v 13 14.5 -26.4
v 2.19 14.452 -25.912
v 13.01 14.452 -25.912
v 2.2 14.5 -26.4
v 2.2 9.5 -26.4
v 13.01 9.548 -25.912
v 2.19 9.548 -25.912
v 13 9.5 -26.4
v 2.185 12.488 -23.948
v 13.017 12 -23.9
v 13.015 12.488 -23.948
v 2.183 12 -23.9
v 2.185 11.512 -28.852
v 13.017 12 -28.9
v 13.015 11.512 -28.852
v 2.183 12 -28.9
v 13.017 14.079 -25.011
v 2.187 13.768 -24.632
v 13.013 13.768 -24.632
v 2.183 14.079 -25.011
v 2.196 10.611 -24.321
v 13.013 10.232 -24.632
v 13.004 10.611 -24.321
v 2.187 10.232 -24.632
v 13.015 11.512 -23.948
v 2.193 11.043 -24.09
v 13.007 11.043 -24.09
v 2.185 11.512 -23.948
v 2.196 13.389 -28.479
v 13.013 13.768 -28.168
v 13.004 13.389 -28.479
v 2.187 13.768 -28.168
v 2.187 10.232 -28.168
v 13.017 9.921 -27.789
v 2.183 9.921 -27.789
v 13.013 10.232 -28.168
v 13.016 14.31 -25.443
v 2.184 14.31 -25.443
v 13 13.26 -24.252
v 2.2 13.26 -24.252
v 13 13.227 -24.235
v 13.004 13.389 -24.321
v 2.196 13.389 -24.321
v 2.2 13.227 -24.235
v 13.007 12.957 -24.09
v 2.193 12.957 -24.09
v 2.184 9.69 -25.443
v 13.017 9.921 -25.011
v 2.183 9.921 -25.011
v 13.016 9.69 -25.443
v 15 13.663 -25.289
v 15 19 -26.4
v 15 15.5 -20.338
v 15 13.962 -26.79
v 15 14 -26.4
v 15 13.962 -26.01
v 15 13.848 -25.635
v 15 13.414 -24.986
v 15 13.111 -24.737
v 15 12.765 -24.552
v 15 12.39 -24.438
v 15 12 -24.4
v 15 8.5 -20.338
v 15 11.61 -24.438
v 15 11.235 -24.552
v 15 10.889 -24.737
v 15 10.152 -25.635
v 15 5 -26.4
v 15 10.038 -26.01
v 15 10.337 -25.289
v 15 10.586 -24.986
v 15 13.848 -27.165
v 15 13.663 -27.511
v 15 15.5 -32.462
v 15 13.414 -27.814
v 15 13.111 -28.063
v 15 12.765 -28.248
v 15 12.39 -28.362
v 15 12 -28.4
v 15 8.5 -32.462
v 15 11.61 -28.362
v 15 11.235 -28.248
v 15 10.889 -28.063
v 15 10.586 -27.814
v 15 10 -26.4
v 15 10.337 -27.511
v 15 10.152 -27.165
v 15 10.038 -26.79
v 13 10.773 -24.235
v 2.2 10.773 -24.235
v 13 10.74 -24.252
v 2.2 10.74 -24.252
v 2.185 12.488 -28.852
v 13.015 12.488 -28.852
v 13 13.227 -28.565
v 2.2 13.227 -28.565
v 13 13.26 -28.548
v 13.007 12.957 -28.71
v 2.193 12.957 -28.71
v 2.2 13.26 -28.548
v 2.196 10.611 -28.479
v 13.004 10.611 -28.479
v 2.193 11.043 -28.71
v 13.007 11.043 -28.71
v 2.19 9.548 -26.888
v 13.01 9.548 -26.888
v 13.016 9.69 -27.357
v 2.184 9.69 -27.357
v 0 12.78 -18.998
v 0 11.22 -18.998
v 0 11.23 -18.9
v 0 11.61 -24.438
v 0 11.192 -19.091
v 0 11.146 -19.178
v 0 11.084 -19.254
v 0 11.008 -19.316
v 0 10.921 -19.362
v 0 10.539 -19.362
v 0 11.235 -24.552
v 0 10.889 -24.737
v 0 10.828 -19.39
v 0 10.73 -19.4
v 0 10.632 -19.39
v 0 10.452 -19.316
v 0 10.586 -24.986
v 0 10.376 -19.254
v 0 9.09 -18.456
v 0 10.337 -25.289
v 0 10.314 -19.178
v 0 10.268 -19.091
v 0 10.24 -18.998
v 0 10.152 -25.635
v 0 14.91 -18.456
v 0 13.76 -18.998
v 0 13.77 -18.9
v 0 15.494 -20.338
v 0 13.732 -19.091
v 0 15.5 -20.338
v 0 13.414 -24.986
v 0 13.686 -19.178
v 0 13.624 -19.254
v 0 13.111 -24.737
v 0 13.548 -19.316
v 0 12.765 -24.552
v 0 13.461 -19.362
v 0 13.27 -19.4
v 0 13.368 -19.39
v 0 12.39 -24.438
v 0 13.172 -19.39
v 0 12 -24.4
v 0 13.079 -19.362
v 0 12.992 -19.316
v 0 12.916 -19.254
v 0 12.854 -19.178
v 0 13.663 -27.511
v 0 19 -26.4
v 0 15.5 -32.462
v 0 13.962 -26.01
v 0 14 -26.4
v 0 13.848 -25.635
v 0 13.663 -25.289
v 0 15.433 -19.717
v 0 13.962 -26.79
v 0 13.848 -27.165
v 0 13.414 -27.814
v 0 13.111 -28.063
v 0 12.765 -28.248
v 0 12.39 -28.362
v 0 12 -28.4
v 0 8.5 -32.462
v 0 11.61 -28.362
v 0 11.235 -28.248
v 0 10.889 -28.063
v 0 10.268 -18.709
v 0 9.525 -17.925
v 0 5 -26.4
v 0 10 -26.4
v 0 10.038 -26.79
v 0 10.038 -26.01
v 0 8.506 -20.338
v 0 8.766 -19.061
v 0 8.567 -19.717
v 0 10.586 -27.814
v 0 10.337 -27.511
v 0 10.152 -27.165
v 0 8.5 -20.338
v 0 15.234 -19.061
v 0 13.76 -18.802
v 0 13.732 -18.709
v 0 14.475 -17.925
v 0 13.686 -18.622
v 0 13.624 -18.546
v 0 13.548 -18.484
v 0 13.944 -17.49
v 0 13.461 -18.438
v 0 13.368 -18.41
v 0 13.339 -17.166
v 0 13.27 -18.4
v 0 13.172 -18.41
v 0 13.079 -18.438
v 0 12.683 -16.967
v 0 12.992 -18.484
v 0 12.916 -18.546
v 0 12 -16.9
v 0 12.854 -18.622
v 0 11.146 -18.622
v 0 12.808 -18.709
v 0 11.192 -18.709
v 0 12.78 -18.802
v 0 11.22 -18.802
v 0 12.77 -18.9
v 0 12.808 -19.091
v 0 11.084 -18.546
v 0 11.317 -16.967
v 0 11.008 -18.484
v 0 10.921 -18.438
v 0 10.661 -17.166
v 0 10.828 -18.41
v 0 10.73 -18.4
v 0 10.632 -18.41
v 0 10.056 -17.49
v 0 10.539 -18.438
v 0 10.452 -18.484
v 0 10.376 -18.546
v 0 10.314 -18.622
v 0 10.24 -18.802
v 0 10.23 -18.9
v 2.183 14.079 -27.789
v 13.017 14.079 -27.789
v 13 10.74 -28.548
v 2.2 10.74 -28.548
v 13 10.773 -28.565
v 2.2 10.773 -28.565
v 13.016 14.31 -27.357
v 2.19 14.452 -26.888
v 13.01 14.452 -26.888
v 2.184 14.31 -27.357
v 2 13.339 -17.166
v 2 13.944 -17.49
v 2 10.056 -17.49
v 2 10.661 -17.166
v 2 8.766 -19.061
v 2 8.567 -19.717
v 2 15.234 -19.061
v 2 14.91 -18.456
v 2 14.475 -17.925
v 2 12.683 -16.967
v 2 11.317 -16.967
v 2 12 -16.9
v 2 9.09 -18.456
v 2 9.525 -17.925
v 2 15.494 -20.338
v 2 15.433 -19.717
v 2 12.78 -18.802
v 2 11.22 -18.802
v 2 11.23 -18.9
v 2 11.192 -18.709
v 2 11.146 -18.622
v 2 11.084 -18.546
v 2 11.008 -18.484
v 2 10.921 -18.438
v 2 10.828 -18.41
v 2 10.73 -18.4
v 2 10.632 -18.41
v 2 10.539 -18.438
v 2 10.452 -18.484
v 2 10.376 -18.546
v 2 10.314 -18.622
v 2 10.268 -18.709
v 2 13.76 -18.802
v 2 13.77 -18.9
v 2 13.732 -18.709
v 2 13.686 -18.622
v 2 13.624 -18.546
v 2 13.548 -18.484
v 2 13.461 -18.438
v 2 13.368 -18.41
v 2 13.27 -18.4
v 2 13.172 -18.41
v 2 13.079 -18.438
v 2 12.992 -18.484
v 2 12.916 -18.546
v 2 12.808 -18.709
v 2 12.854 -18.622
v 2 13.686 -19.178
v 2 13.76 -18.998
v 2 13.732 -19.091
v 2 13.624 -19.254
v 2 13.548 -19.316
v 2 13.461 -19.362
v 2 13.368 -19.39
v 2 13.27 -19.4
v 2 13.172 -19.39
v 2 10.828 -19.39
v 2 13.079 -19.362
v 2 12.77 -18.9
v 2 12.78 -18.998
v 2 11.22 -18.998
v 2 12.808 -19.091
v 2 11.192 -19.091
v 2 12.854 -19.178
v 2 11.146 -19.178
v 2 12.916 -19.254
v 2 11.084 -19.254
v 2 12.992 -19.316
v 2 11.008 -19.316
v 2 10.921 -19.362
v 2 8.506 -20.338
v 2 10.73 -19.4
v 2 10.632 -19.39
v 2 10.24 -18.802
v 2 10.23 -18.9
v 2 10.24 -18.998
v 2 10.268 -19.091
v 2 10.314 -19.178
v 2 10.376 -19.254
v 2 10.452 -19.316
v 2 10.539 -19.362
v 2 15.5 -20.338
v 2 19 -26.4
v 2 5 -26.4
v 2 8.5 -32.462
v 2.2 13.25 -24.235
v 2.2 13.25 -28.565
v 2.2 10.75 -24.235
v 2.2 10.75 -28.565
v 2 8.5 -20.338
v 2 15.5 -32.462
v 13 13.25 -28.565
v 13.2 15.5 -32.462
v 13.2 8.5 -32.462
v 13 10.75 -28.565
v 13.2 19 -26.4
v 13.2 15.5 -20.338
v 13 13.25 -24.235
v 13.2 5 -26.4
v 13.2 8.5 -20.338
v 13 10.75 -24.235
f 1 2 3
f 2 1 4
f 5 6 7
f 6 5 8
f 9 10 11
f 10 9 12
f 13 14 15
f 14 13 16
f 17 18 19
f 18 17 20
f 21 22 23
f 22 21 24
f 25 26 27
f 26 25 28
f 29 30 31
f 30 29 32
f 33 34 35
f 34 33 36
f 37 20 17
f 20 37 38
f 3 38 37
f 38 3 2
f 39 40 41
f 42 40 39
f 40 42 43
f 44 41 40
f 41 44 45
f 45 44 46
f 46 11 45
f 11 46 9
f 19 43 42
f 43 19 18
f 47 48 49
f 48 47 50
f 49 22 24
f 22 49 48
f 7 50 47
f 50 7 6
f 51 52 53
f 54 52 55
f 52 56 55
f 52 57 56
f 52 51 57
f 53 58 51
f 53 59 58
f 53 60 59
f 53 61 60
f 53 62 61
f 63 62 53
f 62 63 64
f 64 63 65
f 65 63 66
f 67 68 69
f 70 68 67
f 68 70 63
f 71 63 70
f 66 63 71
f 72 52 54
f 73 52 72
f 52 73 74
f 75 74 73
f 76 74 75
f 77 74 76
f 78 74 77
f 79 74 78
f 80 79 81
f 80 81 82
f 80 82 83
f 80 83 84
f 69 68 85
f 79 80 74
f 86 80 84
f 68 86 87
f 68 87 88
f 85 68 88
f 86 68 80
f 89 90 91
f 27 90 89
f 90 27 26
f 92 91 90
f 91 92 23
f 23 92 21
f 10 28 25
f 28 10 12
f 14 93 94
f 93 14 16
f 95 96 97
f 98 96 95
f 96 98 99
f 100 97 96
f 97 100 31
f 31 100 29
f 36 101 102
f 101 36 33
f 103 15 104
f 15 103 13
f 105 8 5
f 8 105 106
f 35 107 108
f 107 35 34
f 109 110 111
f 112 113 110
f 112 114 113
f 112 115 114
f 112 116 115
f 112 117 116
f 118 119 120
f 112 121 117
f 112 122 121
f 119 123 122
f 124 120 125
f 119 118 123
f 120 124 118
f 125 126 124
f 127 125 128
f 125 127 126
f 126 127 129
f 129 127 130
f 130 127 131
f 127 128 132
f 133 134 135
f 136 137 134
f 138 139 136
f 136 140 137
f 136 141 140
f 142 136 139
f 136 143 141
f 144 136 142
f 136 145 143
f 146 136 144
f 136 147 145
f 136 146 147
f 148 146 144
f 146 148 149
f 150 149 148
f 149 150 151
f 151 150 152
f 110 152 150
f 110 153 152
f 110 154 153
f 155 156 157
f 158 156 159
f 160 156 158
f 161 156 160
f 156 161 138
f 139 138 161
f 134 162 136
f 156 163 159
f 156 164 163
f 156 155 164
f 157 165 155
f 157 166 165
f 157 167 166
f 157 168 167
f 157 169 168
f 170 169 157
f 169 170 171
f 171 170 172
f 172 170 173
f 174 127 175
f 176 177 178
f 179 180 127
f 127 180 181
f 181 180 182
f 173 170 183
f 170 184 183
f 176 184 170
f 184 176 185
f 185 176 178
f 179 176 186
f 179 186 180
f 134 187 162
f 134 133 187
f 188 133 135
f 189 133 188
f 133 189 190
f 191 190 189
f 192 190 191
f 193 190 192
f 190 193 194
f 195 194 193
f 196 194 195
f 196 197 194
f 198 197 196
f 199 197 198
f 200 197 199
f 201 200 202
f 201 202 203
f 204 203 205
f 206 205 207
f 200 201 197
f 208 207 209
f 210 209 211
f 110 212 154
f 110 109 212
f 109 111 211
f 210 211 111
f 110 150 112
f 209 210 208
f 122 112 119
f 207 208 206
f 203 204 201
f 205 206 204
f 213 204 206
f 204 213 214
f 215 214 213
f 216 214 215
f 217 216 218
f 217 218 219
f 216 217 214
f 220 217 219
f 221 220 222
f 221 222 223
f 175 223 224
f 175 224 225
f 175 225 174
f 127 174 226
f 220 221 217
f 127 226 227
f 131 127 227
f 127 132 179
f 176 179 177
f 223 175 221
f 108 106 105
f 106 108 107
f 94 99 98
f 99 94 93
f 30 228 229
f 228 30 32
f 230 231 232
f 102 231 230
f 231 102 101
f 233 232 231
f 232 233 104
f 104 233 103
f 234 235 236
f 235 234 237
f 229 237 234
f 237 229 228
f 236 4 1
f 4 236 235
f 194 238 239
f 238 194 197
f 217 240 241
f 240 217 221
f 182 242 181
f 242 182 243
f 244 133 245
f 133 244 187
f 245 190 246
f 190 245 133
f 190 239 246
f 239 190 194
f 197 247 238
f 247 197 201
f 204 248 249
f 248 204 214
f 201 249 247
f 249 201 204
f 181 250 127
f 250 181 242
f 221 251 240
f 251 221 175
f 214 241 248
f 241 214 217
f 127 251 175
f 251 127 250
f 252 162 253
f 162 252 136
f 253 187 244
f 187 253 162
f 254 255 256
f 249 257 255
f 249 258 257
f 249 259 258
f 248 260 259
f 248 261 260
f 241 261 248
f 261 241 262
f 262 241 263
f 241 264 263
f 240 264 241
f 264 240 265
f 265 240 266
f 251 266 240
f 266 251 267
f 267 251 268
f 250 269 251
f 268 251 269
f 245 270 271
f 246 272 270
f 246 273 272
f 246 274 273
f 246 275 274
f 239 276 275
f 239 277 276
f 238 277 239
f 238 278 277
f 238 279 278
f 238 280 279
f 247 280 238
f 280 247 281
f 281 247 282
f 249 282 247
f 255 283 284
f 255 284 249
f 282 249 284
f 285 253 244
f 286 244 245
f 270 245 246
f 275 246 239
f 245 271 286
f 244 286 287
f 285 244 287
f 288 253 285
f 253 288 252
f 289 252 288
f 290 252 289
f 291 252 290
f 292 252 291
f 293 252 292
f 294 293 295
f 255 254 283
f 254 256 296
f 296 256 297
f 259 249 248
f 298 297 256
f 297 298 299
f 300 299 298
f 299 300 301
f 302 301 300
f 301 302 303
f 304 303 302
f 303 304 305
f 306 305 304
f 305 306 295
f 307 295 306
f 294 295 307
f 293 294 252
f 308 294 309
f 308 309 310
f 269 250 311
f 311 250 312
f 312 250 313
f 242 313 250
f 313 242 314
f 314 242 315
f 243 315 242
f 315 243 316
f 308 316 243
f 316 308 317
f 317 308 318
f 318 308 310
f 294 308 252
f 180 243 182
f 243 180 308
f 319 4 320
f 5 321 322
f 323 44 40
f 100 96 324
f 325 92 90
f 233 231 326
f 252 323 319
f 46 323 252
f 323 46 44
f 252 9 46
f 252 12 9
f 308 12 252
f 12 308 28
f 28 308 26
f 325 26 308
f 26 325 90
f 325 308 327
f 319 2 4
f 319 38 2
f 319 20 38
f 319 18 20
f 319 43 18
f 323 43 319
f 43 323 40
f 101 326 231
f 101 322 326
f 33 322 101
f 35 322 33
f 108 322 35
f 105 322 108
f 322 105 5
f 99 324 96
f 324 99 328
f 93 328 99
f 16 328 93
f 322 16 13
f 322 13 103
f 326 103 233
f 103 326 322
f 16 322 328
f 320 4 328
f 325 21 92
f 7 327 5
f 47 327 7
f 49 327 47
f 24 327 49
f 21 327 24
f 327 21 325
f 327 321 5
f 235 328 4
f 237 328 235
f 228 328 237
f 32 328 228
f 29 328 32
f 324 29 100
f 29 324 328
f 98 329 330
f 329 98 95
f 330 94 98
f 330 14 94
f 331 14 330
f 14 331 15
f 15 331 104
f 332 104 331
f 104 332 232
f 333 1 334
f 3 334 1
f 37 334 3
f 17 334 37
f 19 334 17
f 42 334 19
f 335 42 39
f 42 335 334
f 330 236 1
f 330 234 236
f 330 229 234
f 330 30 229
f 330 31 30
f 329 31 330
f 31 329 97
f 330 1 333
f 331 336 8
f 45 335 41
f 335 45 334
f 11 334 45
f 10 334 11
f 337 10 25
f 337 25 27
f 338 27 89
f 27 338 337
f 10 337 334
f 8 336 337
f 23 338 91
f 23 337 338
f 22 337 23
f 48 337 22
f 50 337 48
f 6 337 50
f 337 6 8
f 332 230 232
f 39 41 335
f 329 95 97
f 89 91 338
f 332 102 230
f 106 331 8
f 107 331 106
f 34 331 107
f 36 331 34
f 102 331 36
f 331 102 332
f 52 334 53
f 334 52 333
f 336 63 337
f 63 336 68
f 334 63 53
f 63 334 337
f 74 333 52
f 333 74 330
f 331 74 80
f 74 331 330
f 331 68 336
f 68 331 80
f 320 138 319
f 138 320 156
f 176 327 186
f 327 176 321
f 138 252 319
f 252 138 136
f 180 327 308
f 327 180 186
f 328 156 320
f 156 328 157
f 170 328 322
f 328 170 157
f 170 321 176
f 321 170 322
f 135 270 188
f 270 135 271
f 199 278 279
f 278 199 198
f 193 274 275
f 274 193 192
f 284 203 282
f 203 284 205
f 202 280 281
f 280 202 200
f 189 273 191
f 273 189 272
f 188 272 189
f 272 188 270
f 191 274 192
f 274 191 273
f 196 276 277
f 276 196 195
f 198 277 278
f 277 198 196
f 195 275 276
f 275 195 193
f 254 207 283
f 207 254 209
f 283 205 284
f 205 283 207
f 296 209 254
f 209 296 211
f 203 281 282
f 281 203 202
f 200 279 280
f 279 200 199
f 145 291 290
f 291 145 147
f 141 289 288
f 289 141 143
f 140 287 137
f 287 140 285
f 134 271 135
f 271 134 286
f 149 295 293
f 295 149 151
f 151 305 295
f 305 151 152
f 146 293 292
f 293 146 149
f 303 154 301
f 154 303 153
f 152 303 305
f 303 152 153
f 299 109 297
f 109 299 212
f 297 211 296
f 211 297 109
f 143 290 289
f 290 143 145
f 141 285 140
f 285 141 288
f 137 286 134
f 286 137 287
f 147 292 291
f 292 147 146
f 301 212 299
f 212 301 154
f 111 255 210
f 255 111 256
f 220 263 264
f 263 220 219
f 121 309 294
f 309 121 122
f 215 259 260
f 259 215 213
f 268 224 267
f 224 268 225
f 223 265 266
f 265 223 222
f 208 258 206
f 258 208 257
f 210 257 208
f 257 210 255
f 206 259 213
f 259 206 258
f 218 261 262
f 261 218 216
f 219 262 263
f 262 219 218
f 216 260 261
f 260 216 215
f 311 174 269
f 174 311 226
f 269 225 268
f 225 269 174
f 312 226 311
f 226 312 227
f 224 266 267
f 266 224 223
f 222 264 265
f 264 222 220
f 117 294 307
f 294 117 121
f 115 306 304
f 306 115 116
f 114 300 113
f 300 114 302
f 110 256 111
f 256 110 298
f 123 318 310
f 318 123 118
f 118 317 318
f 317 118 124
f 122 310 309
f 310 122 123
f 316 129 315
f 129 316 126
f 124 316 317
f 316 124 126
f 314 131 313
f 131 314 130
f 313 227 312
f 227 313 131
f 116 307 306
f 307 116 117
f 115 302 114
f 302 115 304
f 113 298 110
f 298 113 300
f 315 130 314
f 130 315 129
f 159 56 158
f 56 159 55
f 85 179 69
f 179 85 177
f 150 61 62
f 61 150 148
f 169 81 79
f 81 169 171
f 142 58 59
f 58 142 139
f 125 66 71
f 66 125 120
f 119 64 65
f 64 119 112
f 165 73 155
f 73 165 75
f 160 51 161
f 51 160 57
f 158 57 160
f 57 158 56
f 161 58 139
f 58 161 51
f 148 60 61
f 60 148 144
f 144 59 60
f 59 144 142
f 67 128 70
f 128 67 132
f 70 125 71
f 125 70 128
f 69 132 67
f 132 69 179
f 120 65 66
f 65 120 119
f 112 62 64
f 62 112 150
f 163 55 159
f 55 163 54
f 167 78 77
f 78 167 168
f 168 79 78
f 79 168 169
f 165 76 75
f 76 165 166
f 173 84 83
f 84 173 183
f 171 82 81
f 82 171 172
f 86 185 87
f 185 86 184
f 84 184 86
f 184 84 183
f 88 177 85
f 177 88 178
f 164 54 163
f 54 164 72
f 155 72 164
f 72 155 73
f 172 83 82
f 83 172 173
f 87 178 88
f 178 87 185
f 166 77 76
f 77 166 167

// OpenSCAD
// file: parameter.scad
//----------------Global Parameter---------------------------------------
nema17_height=40;
nema17_width=42;
nema17_shftDia=5;
nema17_shftLen=28;
nema17_holeDist=31;
Nema17_gearDia=23;

slotWthick=4;

//-------Parameter triplePytho------------------------------------------------

strScale=800;
strDia=3.5;
strPosX=20;
strPosY=-20;
slotXY=20;
nStr=3;


tuner_bDi=8;
tuner_bDo=22.2;
tuner_bZ=10;
tuner_rThick=5;
tuner_tDia=strPosX*2;// (big)
//tuner_tDia=tuner_bDo+8;// (small)
tuner_leverZ=10;
tuner_zPos=225;
tuner_strDia=strDia[0];
tuner_leverY=35;

//----------Kickup----------------------------------------------------

kickup_baseX=17;
kickup_baseY=13;
kickup_zAdjDia=3.3;
kickup_zAdjL=10;
kickup_zAdjDist=10.5;
kickup_zAdjOff=4;
//------------------------------------------------------------------------

slide_cpDst=1.5;
slide_rackPosX=(55-12.5);

m3Dia=3.3;
m3NutD=6.6;
m4Dia=4.3;
m4NutD=8.3;
m4NutZ=5;
m5Dia=5.3;
m5HeadD=9.6;

edgeR=3;

mnt_pcbA_X=157;
mnt_pcbA_Y=101;

//---------End Parameter triplePytho-----------------------------------------------


//-------Parameter GHarp----------------------------------------------------

//strScale=650;
//strDia=3;
//strPosX=20;
//strPosY=-20;
//slotXY=20;
//nStr=3;
//
//
//
//tuner_bDi=8;
//tuner_bDo=22.2;
//tuner_bZ=10;
//tuner_rThick=5;
////tuner_tDia=strPosX*2; (big)
//tuner_tDia=strPosX*2-10;
//tuner_leverZ=10;
//tuner_zPos=225;
//tuner_strDia=strDia[0];
//tuner_leverY=35;
//
////----------Kickup----------------------------------------------------
//
//kickup_baseX=17;
//kickup_baseY=13;
//kickup_zAdjDia=3.3;
//kickup_zAdjL=10;
//kickup_zAdjDist=10.5;
//kickup_zAdjOff=4;
////------------------------------------------------------------------------
//
//slide_cpDst=1.5;
//slide_rackPosX=(55-12.5);
//
//m3Dia=3.3;
//m3NutD=6.6;
//m4Dia=4.3;
//m4NutD=8.3;
//m4NutZ=5;
//m5Dia=5.3;
//m5HeadD=9.6;
//
//edgeR=3;
//
//gearXPos=57;
//gearYPos=0;
//gearZPos=360;
//
//rackScrD=20;
//rack_X=13;
//rack_Y=15.5;
//rack_extOffX=0;
//
//bearGearD=25;
//mntGrD=20.5; //mount gear distance
//
//mnt_pcbA_X=157;
//mnt_pcbA_Y=101;

//---------End Parameter GHarp-----------------------------------------------


//-------Parameter Bass----------------------------------------------------

//strScale=650;
//strDia=4;
//strPosX=20;
//strPosY=-20;
//slotXY=20;
//
//
//
//tuner_bDi=8;
//tuner_bDo=22.2;
//tuner_bZ=10;
//tuner_rThick=5;
////tuner_tDia=strPosX*2; (big)
//tuner_tDia=strPosX*2;
//tuner_leverZ=10;
//tuner_zPos=225;
//tuner_strDia=strDia[0];
//tuner_leverY=35;
//
////----------Kickup----------------------------------------------------
//
//
//kickup_baseX=22;
//kickup_baseY=15;
//kickup_zAdjDia=3.3;
//kickup_zAdjL=10;
//kickup_zAdjDist=13;
//kickup_zAdjOff=4;
//
//
//slide_cpDst=1.5;
//slide_rackPosX=(55-12.5);
//
//m3NutD=6.6;
//m4Dia=4.3;
//m4NutD=8.3;
//m5Dia=5.3;
//
//edgeR=3;
//
//gearXPos=57;
//gearYPos=0;
//gearZPos=360;
//
//rackScrD=20;
//rack_X=13;
//rack_Y=15.5;
//rack_extOffX=0;
//
//bearGearD=25;
//mntGrD=20.5; //mount gear distance
//
////---------End Bass-----------------------------------------------
// main file
include <parameter.scad>
strSpanB=10;
bodySlotX=100;

kickup(3);

module kickup(orient){
$fn=32;

spacing=strSpanB;//52;
echo (spacing);
diameter=15;
wall=2;
coilZ=15;
bottomZ=2;
t=0.3;
ySpacing=12;

bX = slotXY;
bY=12;
bZ=coilZ+bottomZ+t;

tX = bX;
tY=bY;
hub=3;
magZ=3.1;
tbottomZ=3;
tZ=hub+magZ+tbottomZ;
tDia=6.7;//6.5;
screwTdia=4.3;

conMntX=2.54;
conMntY=6.3;
conMntZ=12;
conWt=1.5;

screwMdia=4.3;

mntTh=4.5;
mX=bX+slotXY+mntTh;


module mnt(){
difference(){
    union(){
        translate([-mX/2+bX/2,0,-mntTh])rcube([mX,bY,mntTh],3);
        translate([-mX+bX/2+mntTh/2,0,-mntTh])rcube([mntTh,bY,bZ+mntTh+tZ],0.1);
    }
    hull(){
    translate([-bX/2-slotXY,0,slotXY/2])rotate([0,-90,0])cylinder(d=m5Dia,h=bZ,center=true);
    translate([-bX/2-slotXY,0,(bZ+tZ)-m5Dia*1.5])rotate([0,-90,0])cylinder(d=m5Dia,h=bZ,center=true);
    }
    
    
    translate([0,0,-mntTh-1])cylinder(d=screwMdia,h=bZ);
}
}


module rcube(size,radius){
linear_extrude(height=size[2])
if(radius>0){
hull()
{
    // place 4 circles in the corners, with the given radius
    translate([(-size[0]/2)+(radius), (-size[1]/2)+(radius), 0])
    circle(r=radius);

    translate([(size[0]/2)-(radius), (-size[1]/2)+(radius), 0])
    circle(r=radius);

    translate([(-size[0]/2)+(radius), (size[1]/2)-(radius), 0])
    circle(r=radius);

    translate([(size[0]/2)-(radius), (size[1]/2)-(radius), 0])
    circle(r=radius);
}
}
if(radius==0){
translate([0,0,size[2]/2])cube(size,center=true);
}
}




module coil(){
$fn=32;
magholedia=4;
wallthick=0.5;
loweridlerZ=2;
upperidlerZ=1.8;
rampBZ=0.2;
rampTZ=0.2;
coildia=14;
rampdia=coildia;
threaddepth=5;
roofZ=0; //loweridlerZ;
conD=2.54;
conMDia=7;
conR=coildia/2-1;

difference(){
union(){
cylinder(d=magholedia+wallthick*2,h=coilZ);
translate([0,conR,0])cylinder(d=conMDia,h=loweridlerZ);   
translate([0,0,loweridlerZ])cylinder(d1=rampdia,d2=magholedia+wallthick*2,h=rampBZ,$fn=6);
translate([0,0,coilZ-upperidlerZ-rampTZ])cylinder(d2=rampdia/100*100,d1=magholedia+wallthick*2,h=rampTZ,$fn=6);
translate([0,0,coilZ-upperidlerZ])cylinder(d=coildia/100*100,h=upperidlerZ,,$fn=6);
//Ccube([coildia,coildia,upperidlerZ],[0,0,1]);
translate([0,0,0]){
//Ccube([coildia,coildia,loweridlerZ],[0,0,1]);
cylinder(d=coildia,h=loweridlerZ,$fn=6);

}
}

translate([conD/2,conR+1.5,0])cylinder(d=1,h=loweridlerZ*2,center=true);  
translate([-conD/2,conR+1.5,0])cylinder(d=1,h=loweridlerZ*2,center=true); 

translate([0,0,-roofZ])cylinder(d=magholedia,h=coilZ);
//cylinder(d=coilthreaddia,h=coilZ+1);
}}



translate([0,0,-bZ-tZ]){
//rotate([00,0,0])mnt();
translate([0,tY+0,0])rotate([90,0,0])rotate([0,90,0])coil();
}
}
